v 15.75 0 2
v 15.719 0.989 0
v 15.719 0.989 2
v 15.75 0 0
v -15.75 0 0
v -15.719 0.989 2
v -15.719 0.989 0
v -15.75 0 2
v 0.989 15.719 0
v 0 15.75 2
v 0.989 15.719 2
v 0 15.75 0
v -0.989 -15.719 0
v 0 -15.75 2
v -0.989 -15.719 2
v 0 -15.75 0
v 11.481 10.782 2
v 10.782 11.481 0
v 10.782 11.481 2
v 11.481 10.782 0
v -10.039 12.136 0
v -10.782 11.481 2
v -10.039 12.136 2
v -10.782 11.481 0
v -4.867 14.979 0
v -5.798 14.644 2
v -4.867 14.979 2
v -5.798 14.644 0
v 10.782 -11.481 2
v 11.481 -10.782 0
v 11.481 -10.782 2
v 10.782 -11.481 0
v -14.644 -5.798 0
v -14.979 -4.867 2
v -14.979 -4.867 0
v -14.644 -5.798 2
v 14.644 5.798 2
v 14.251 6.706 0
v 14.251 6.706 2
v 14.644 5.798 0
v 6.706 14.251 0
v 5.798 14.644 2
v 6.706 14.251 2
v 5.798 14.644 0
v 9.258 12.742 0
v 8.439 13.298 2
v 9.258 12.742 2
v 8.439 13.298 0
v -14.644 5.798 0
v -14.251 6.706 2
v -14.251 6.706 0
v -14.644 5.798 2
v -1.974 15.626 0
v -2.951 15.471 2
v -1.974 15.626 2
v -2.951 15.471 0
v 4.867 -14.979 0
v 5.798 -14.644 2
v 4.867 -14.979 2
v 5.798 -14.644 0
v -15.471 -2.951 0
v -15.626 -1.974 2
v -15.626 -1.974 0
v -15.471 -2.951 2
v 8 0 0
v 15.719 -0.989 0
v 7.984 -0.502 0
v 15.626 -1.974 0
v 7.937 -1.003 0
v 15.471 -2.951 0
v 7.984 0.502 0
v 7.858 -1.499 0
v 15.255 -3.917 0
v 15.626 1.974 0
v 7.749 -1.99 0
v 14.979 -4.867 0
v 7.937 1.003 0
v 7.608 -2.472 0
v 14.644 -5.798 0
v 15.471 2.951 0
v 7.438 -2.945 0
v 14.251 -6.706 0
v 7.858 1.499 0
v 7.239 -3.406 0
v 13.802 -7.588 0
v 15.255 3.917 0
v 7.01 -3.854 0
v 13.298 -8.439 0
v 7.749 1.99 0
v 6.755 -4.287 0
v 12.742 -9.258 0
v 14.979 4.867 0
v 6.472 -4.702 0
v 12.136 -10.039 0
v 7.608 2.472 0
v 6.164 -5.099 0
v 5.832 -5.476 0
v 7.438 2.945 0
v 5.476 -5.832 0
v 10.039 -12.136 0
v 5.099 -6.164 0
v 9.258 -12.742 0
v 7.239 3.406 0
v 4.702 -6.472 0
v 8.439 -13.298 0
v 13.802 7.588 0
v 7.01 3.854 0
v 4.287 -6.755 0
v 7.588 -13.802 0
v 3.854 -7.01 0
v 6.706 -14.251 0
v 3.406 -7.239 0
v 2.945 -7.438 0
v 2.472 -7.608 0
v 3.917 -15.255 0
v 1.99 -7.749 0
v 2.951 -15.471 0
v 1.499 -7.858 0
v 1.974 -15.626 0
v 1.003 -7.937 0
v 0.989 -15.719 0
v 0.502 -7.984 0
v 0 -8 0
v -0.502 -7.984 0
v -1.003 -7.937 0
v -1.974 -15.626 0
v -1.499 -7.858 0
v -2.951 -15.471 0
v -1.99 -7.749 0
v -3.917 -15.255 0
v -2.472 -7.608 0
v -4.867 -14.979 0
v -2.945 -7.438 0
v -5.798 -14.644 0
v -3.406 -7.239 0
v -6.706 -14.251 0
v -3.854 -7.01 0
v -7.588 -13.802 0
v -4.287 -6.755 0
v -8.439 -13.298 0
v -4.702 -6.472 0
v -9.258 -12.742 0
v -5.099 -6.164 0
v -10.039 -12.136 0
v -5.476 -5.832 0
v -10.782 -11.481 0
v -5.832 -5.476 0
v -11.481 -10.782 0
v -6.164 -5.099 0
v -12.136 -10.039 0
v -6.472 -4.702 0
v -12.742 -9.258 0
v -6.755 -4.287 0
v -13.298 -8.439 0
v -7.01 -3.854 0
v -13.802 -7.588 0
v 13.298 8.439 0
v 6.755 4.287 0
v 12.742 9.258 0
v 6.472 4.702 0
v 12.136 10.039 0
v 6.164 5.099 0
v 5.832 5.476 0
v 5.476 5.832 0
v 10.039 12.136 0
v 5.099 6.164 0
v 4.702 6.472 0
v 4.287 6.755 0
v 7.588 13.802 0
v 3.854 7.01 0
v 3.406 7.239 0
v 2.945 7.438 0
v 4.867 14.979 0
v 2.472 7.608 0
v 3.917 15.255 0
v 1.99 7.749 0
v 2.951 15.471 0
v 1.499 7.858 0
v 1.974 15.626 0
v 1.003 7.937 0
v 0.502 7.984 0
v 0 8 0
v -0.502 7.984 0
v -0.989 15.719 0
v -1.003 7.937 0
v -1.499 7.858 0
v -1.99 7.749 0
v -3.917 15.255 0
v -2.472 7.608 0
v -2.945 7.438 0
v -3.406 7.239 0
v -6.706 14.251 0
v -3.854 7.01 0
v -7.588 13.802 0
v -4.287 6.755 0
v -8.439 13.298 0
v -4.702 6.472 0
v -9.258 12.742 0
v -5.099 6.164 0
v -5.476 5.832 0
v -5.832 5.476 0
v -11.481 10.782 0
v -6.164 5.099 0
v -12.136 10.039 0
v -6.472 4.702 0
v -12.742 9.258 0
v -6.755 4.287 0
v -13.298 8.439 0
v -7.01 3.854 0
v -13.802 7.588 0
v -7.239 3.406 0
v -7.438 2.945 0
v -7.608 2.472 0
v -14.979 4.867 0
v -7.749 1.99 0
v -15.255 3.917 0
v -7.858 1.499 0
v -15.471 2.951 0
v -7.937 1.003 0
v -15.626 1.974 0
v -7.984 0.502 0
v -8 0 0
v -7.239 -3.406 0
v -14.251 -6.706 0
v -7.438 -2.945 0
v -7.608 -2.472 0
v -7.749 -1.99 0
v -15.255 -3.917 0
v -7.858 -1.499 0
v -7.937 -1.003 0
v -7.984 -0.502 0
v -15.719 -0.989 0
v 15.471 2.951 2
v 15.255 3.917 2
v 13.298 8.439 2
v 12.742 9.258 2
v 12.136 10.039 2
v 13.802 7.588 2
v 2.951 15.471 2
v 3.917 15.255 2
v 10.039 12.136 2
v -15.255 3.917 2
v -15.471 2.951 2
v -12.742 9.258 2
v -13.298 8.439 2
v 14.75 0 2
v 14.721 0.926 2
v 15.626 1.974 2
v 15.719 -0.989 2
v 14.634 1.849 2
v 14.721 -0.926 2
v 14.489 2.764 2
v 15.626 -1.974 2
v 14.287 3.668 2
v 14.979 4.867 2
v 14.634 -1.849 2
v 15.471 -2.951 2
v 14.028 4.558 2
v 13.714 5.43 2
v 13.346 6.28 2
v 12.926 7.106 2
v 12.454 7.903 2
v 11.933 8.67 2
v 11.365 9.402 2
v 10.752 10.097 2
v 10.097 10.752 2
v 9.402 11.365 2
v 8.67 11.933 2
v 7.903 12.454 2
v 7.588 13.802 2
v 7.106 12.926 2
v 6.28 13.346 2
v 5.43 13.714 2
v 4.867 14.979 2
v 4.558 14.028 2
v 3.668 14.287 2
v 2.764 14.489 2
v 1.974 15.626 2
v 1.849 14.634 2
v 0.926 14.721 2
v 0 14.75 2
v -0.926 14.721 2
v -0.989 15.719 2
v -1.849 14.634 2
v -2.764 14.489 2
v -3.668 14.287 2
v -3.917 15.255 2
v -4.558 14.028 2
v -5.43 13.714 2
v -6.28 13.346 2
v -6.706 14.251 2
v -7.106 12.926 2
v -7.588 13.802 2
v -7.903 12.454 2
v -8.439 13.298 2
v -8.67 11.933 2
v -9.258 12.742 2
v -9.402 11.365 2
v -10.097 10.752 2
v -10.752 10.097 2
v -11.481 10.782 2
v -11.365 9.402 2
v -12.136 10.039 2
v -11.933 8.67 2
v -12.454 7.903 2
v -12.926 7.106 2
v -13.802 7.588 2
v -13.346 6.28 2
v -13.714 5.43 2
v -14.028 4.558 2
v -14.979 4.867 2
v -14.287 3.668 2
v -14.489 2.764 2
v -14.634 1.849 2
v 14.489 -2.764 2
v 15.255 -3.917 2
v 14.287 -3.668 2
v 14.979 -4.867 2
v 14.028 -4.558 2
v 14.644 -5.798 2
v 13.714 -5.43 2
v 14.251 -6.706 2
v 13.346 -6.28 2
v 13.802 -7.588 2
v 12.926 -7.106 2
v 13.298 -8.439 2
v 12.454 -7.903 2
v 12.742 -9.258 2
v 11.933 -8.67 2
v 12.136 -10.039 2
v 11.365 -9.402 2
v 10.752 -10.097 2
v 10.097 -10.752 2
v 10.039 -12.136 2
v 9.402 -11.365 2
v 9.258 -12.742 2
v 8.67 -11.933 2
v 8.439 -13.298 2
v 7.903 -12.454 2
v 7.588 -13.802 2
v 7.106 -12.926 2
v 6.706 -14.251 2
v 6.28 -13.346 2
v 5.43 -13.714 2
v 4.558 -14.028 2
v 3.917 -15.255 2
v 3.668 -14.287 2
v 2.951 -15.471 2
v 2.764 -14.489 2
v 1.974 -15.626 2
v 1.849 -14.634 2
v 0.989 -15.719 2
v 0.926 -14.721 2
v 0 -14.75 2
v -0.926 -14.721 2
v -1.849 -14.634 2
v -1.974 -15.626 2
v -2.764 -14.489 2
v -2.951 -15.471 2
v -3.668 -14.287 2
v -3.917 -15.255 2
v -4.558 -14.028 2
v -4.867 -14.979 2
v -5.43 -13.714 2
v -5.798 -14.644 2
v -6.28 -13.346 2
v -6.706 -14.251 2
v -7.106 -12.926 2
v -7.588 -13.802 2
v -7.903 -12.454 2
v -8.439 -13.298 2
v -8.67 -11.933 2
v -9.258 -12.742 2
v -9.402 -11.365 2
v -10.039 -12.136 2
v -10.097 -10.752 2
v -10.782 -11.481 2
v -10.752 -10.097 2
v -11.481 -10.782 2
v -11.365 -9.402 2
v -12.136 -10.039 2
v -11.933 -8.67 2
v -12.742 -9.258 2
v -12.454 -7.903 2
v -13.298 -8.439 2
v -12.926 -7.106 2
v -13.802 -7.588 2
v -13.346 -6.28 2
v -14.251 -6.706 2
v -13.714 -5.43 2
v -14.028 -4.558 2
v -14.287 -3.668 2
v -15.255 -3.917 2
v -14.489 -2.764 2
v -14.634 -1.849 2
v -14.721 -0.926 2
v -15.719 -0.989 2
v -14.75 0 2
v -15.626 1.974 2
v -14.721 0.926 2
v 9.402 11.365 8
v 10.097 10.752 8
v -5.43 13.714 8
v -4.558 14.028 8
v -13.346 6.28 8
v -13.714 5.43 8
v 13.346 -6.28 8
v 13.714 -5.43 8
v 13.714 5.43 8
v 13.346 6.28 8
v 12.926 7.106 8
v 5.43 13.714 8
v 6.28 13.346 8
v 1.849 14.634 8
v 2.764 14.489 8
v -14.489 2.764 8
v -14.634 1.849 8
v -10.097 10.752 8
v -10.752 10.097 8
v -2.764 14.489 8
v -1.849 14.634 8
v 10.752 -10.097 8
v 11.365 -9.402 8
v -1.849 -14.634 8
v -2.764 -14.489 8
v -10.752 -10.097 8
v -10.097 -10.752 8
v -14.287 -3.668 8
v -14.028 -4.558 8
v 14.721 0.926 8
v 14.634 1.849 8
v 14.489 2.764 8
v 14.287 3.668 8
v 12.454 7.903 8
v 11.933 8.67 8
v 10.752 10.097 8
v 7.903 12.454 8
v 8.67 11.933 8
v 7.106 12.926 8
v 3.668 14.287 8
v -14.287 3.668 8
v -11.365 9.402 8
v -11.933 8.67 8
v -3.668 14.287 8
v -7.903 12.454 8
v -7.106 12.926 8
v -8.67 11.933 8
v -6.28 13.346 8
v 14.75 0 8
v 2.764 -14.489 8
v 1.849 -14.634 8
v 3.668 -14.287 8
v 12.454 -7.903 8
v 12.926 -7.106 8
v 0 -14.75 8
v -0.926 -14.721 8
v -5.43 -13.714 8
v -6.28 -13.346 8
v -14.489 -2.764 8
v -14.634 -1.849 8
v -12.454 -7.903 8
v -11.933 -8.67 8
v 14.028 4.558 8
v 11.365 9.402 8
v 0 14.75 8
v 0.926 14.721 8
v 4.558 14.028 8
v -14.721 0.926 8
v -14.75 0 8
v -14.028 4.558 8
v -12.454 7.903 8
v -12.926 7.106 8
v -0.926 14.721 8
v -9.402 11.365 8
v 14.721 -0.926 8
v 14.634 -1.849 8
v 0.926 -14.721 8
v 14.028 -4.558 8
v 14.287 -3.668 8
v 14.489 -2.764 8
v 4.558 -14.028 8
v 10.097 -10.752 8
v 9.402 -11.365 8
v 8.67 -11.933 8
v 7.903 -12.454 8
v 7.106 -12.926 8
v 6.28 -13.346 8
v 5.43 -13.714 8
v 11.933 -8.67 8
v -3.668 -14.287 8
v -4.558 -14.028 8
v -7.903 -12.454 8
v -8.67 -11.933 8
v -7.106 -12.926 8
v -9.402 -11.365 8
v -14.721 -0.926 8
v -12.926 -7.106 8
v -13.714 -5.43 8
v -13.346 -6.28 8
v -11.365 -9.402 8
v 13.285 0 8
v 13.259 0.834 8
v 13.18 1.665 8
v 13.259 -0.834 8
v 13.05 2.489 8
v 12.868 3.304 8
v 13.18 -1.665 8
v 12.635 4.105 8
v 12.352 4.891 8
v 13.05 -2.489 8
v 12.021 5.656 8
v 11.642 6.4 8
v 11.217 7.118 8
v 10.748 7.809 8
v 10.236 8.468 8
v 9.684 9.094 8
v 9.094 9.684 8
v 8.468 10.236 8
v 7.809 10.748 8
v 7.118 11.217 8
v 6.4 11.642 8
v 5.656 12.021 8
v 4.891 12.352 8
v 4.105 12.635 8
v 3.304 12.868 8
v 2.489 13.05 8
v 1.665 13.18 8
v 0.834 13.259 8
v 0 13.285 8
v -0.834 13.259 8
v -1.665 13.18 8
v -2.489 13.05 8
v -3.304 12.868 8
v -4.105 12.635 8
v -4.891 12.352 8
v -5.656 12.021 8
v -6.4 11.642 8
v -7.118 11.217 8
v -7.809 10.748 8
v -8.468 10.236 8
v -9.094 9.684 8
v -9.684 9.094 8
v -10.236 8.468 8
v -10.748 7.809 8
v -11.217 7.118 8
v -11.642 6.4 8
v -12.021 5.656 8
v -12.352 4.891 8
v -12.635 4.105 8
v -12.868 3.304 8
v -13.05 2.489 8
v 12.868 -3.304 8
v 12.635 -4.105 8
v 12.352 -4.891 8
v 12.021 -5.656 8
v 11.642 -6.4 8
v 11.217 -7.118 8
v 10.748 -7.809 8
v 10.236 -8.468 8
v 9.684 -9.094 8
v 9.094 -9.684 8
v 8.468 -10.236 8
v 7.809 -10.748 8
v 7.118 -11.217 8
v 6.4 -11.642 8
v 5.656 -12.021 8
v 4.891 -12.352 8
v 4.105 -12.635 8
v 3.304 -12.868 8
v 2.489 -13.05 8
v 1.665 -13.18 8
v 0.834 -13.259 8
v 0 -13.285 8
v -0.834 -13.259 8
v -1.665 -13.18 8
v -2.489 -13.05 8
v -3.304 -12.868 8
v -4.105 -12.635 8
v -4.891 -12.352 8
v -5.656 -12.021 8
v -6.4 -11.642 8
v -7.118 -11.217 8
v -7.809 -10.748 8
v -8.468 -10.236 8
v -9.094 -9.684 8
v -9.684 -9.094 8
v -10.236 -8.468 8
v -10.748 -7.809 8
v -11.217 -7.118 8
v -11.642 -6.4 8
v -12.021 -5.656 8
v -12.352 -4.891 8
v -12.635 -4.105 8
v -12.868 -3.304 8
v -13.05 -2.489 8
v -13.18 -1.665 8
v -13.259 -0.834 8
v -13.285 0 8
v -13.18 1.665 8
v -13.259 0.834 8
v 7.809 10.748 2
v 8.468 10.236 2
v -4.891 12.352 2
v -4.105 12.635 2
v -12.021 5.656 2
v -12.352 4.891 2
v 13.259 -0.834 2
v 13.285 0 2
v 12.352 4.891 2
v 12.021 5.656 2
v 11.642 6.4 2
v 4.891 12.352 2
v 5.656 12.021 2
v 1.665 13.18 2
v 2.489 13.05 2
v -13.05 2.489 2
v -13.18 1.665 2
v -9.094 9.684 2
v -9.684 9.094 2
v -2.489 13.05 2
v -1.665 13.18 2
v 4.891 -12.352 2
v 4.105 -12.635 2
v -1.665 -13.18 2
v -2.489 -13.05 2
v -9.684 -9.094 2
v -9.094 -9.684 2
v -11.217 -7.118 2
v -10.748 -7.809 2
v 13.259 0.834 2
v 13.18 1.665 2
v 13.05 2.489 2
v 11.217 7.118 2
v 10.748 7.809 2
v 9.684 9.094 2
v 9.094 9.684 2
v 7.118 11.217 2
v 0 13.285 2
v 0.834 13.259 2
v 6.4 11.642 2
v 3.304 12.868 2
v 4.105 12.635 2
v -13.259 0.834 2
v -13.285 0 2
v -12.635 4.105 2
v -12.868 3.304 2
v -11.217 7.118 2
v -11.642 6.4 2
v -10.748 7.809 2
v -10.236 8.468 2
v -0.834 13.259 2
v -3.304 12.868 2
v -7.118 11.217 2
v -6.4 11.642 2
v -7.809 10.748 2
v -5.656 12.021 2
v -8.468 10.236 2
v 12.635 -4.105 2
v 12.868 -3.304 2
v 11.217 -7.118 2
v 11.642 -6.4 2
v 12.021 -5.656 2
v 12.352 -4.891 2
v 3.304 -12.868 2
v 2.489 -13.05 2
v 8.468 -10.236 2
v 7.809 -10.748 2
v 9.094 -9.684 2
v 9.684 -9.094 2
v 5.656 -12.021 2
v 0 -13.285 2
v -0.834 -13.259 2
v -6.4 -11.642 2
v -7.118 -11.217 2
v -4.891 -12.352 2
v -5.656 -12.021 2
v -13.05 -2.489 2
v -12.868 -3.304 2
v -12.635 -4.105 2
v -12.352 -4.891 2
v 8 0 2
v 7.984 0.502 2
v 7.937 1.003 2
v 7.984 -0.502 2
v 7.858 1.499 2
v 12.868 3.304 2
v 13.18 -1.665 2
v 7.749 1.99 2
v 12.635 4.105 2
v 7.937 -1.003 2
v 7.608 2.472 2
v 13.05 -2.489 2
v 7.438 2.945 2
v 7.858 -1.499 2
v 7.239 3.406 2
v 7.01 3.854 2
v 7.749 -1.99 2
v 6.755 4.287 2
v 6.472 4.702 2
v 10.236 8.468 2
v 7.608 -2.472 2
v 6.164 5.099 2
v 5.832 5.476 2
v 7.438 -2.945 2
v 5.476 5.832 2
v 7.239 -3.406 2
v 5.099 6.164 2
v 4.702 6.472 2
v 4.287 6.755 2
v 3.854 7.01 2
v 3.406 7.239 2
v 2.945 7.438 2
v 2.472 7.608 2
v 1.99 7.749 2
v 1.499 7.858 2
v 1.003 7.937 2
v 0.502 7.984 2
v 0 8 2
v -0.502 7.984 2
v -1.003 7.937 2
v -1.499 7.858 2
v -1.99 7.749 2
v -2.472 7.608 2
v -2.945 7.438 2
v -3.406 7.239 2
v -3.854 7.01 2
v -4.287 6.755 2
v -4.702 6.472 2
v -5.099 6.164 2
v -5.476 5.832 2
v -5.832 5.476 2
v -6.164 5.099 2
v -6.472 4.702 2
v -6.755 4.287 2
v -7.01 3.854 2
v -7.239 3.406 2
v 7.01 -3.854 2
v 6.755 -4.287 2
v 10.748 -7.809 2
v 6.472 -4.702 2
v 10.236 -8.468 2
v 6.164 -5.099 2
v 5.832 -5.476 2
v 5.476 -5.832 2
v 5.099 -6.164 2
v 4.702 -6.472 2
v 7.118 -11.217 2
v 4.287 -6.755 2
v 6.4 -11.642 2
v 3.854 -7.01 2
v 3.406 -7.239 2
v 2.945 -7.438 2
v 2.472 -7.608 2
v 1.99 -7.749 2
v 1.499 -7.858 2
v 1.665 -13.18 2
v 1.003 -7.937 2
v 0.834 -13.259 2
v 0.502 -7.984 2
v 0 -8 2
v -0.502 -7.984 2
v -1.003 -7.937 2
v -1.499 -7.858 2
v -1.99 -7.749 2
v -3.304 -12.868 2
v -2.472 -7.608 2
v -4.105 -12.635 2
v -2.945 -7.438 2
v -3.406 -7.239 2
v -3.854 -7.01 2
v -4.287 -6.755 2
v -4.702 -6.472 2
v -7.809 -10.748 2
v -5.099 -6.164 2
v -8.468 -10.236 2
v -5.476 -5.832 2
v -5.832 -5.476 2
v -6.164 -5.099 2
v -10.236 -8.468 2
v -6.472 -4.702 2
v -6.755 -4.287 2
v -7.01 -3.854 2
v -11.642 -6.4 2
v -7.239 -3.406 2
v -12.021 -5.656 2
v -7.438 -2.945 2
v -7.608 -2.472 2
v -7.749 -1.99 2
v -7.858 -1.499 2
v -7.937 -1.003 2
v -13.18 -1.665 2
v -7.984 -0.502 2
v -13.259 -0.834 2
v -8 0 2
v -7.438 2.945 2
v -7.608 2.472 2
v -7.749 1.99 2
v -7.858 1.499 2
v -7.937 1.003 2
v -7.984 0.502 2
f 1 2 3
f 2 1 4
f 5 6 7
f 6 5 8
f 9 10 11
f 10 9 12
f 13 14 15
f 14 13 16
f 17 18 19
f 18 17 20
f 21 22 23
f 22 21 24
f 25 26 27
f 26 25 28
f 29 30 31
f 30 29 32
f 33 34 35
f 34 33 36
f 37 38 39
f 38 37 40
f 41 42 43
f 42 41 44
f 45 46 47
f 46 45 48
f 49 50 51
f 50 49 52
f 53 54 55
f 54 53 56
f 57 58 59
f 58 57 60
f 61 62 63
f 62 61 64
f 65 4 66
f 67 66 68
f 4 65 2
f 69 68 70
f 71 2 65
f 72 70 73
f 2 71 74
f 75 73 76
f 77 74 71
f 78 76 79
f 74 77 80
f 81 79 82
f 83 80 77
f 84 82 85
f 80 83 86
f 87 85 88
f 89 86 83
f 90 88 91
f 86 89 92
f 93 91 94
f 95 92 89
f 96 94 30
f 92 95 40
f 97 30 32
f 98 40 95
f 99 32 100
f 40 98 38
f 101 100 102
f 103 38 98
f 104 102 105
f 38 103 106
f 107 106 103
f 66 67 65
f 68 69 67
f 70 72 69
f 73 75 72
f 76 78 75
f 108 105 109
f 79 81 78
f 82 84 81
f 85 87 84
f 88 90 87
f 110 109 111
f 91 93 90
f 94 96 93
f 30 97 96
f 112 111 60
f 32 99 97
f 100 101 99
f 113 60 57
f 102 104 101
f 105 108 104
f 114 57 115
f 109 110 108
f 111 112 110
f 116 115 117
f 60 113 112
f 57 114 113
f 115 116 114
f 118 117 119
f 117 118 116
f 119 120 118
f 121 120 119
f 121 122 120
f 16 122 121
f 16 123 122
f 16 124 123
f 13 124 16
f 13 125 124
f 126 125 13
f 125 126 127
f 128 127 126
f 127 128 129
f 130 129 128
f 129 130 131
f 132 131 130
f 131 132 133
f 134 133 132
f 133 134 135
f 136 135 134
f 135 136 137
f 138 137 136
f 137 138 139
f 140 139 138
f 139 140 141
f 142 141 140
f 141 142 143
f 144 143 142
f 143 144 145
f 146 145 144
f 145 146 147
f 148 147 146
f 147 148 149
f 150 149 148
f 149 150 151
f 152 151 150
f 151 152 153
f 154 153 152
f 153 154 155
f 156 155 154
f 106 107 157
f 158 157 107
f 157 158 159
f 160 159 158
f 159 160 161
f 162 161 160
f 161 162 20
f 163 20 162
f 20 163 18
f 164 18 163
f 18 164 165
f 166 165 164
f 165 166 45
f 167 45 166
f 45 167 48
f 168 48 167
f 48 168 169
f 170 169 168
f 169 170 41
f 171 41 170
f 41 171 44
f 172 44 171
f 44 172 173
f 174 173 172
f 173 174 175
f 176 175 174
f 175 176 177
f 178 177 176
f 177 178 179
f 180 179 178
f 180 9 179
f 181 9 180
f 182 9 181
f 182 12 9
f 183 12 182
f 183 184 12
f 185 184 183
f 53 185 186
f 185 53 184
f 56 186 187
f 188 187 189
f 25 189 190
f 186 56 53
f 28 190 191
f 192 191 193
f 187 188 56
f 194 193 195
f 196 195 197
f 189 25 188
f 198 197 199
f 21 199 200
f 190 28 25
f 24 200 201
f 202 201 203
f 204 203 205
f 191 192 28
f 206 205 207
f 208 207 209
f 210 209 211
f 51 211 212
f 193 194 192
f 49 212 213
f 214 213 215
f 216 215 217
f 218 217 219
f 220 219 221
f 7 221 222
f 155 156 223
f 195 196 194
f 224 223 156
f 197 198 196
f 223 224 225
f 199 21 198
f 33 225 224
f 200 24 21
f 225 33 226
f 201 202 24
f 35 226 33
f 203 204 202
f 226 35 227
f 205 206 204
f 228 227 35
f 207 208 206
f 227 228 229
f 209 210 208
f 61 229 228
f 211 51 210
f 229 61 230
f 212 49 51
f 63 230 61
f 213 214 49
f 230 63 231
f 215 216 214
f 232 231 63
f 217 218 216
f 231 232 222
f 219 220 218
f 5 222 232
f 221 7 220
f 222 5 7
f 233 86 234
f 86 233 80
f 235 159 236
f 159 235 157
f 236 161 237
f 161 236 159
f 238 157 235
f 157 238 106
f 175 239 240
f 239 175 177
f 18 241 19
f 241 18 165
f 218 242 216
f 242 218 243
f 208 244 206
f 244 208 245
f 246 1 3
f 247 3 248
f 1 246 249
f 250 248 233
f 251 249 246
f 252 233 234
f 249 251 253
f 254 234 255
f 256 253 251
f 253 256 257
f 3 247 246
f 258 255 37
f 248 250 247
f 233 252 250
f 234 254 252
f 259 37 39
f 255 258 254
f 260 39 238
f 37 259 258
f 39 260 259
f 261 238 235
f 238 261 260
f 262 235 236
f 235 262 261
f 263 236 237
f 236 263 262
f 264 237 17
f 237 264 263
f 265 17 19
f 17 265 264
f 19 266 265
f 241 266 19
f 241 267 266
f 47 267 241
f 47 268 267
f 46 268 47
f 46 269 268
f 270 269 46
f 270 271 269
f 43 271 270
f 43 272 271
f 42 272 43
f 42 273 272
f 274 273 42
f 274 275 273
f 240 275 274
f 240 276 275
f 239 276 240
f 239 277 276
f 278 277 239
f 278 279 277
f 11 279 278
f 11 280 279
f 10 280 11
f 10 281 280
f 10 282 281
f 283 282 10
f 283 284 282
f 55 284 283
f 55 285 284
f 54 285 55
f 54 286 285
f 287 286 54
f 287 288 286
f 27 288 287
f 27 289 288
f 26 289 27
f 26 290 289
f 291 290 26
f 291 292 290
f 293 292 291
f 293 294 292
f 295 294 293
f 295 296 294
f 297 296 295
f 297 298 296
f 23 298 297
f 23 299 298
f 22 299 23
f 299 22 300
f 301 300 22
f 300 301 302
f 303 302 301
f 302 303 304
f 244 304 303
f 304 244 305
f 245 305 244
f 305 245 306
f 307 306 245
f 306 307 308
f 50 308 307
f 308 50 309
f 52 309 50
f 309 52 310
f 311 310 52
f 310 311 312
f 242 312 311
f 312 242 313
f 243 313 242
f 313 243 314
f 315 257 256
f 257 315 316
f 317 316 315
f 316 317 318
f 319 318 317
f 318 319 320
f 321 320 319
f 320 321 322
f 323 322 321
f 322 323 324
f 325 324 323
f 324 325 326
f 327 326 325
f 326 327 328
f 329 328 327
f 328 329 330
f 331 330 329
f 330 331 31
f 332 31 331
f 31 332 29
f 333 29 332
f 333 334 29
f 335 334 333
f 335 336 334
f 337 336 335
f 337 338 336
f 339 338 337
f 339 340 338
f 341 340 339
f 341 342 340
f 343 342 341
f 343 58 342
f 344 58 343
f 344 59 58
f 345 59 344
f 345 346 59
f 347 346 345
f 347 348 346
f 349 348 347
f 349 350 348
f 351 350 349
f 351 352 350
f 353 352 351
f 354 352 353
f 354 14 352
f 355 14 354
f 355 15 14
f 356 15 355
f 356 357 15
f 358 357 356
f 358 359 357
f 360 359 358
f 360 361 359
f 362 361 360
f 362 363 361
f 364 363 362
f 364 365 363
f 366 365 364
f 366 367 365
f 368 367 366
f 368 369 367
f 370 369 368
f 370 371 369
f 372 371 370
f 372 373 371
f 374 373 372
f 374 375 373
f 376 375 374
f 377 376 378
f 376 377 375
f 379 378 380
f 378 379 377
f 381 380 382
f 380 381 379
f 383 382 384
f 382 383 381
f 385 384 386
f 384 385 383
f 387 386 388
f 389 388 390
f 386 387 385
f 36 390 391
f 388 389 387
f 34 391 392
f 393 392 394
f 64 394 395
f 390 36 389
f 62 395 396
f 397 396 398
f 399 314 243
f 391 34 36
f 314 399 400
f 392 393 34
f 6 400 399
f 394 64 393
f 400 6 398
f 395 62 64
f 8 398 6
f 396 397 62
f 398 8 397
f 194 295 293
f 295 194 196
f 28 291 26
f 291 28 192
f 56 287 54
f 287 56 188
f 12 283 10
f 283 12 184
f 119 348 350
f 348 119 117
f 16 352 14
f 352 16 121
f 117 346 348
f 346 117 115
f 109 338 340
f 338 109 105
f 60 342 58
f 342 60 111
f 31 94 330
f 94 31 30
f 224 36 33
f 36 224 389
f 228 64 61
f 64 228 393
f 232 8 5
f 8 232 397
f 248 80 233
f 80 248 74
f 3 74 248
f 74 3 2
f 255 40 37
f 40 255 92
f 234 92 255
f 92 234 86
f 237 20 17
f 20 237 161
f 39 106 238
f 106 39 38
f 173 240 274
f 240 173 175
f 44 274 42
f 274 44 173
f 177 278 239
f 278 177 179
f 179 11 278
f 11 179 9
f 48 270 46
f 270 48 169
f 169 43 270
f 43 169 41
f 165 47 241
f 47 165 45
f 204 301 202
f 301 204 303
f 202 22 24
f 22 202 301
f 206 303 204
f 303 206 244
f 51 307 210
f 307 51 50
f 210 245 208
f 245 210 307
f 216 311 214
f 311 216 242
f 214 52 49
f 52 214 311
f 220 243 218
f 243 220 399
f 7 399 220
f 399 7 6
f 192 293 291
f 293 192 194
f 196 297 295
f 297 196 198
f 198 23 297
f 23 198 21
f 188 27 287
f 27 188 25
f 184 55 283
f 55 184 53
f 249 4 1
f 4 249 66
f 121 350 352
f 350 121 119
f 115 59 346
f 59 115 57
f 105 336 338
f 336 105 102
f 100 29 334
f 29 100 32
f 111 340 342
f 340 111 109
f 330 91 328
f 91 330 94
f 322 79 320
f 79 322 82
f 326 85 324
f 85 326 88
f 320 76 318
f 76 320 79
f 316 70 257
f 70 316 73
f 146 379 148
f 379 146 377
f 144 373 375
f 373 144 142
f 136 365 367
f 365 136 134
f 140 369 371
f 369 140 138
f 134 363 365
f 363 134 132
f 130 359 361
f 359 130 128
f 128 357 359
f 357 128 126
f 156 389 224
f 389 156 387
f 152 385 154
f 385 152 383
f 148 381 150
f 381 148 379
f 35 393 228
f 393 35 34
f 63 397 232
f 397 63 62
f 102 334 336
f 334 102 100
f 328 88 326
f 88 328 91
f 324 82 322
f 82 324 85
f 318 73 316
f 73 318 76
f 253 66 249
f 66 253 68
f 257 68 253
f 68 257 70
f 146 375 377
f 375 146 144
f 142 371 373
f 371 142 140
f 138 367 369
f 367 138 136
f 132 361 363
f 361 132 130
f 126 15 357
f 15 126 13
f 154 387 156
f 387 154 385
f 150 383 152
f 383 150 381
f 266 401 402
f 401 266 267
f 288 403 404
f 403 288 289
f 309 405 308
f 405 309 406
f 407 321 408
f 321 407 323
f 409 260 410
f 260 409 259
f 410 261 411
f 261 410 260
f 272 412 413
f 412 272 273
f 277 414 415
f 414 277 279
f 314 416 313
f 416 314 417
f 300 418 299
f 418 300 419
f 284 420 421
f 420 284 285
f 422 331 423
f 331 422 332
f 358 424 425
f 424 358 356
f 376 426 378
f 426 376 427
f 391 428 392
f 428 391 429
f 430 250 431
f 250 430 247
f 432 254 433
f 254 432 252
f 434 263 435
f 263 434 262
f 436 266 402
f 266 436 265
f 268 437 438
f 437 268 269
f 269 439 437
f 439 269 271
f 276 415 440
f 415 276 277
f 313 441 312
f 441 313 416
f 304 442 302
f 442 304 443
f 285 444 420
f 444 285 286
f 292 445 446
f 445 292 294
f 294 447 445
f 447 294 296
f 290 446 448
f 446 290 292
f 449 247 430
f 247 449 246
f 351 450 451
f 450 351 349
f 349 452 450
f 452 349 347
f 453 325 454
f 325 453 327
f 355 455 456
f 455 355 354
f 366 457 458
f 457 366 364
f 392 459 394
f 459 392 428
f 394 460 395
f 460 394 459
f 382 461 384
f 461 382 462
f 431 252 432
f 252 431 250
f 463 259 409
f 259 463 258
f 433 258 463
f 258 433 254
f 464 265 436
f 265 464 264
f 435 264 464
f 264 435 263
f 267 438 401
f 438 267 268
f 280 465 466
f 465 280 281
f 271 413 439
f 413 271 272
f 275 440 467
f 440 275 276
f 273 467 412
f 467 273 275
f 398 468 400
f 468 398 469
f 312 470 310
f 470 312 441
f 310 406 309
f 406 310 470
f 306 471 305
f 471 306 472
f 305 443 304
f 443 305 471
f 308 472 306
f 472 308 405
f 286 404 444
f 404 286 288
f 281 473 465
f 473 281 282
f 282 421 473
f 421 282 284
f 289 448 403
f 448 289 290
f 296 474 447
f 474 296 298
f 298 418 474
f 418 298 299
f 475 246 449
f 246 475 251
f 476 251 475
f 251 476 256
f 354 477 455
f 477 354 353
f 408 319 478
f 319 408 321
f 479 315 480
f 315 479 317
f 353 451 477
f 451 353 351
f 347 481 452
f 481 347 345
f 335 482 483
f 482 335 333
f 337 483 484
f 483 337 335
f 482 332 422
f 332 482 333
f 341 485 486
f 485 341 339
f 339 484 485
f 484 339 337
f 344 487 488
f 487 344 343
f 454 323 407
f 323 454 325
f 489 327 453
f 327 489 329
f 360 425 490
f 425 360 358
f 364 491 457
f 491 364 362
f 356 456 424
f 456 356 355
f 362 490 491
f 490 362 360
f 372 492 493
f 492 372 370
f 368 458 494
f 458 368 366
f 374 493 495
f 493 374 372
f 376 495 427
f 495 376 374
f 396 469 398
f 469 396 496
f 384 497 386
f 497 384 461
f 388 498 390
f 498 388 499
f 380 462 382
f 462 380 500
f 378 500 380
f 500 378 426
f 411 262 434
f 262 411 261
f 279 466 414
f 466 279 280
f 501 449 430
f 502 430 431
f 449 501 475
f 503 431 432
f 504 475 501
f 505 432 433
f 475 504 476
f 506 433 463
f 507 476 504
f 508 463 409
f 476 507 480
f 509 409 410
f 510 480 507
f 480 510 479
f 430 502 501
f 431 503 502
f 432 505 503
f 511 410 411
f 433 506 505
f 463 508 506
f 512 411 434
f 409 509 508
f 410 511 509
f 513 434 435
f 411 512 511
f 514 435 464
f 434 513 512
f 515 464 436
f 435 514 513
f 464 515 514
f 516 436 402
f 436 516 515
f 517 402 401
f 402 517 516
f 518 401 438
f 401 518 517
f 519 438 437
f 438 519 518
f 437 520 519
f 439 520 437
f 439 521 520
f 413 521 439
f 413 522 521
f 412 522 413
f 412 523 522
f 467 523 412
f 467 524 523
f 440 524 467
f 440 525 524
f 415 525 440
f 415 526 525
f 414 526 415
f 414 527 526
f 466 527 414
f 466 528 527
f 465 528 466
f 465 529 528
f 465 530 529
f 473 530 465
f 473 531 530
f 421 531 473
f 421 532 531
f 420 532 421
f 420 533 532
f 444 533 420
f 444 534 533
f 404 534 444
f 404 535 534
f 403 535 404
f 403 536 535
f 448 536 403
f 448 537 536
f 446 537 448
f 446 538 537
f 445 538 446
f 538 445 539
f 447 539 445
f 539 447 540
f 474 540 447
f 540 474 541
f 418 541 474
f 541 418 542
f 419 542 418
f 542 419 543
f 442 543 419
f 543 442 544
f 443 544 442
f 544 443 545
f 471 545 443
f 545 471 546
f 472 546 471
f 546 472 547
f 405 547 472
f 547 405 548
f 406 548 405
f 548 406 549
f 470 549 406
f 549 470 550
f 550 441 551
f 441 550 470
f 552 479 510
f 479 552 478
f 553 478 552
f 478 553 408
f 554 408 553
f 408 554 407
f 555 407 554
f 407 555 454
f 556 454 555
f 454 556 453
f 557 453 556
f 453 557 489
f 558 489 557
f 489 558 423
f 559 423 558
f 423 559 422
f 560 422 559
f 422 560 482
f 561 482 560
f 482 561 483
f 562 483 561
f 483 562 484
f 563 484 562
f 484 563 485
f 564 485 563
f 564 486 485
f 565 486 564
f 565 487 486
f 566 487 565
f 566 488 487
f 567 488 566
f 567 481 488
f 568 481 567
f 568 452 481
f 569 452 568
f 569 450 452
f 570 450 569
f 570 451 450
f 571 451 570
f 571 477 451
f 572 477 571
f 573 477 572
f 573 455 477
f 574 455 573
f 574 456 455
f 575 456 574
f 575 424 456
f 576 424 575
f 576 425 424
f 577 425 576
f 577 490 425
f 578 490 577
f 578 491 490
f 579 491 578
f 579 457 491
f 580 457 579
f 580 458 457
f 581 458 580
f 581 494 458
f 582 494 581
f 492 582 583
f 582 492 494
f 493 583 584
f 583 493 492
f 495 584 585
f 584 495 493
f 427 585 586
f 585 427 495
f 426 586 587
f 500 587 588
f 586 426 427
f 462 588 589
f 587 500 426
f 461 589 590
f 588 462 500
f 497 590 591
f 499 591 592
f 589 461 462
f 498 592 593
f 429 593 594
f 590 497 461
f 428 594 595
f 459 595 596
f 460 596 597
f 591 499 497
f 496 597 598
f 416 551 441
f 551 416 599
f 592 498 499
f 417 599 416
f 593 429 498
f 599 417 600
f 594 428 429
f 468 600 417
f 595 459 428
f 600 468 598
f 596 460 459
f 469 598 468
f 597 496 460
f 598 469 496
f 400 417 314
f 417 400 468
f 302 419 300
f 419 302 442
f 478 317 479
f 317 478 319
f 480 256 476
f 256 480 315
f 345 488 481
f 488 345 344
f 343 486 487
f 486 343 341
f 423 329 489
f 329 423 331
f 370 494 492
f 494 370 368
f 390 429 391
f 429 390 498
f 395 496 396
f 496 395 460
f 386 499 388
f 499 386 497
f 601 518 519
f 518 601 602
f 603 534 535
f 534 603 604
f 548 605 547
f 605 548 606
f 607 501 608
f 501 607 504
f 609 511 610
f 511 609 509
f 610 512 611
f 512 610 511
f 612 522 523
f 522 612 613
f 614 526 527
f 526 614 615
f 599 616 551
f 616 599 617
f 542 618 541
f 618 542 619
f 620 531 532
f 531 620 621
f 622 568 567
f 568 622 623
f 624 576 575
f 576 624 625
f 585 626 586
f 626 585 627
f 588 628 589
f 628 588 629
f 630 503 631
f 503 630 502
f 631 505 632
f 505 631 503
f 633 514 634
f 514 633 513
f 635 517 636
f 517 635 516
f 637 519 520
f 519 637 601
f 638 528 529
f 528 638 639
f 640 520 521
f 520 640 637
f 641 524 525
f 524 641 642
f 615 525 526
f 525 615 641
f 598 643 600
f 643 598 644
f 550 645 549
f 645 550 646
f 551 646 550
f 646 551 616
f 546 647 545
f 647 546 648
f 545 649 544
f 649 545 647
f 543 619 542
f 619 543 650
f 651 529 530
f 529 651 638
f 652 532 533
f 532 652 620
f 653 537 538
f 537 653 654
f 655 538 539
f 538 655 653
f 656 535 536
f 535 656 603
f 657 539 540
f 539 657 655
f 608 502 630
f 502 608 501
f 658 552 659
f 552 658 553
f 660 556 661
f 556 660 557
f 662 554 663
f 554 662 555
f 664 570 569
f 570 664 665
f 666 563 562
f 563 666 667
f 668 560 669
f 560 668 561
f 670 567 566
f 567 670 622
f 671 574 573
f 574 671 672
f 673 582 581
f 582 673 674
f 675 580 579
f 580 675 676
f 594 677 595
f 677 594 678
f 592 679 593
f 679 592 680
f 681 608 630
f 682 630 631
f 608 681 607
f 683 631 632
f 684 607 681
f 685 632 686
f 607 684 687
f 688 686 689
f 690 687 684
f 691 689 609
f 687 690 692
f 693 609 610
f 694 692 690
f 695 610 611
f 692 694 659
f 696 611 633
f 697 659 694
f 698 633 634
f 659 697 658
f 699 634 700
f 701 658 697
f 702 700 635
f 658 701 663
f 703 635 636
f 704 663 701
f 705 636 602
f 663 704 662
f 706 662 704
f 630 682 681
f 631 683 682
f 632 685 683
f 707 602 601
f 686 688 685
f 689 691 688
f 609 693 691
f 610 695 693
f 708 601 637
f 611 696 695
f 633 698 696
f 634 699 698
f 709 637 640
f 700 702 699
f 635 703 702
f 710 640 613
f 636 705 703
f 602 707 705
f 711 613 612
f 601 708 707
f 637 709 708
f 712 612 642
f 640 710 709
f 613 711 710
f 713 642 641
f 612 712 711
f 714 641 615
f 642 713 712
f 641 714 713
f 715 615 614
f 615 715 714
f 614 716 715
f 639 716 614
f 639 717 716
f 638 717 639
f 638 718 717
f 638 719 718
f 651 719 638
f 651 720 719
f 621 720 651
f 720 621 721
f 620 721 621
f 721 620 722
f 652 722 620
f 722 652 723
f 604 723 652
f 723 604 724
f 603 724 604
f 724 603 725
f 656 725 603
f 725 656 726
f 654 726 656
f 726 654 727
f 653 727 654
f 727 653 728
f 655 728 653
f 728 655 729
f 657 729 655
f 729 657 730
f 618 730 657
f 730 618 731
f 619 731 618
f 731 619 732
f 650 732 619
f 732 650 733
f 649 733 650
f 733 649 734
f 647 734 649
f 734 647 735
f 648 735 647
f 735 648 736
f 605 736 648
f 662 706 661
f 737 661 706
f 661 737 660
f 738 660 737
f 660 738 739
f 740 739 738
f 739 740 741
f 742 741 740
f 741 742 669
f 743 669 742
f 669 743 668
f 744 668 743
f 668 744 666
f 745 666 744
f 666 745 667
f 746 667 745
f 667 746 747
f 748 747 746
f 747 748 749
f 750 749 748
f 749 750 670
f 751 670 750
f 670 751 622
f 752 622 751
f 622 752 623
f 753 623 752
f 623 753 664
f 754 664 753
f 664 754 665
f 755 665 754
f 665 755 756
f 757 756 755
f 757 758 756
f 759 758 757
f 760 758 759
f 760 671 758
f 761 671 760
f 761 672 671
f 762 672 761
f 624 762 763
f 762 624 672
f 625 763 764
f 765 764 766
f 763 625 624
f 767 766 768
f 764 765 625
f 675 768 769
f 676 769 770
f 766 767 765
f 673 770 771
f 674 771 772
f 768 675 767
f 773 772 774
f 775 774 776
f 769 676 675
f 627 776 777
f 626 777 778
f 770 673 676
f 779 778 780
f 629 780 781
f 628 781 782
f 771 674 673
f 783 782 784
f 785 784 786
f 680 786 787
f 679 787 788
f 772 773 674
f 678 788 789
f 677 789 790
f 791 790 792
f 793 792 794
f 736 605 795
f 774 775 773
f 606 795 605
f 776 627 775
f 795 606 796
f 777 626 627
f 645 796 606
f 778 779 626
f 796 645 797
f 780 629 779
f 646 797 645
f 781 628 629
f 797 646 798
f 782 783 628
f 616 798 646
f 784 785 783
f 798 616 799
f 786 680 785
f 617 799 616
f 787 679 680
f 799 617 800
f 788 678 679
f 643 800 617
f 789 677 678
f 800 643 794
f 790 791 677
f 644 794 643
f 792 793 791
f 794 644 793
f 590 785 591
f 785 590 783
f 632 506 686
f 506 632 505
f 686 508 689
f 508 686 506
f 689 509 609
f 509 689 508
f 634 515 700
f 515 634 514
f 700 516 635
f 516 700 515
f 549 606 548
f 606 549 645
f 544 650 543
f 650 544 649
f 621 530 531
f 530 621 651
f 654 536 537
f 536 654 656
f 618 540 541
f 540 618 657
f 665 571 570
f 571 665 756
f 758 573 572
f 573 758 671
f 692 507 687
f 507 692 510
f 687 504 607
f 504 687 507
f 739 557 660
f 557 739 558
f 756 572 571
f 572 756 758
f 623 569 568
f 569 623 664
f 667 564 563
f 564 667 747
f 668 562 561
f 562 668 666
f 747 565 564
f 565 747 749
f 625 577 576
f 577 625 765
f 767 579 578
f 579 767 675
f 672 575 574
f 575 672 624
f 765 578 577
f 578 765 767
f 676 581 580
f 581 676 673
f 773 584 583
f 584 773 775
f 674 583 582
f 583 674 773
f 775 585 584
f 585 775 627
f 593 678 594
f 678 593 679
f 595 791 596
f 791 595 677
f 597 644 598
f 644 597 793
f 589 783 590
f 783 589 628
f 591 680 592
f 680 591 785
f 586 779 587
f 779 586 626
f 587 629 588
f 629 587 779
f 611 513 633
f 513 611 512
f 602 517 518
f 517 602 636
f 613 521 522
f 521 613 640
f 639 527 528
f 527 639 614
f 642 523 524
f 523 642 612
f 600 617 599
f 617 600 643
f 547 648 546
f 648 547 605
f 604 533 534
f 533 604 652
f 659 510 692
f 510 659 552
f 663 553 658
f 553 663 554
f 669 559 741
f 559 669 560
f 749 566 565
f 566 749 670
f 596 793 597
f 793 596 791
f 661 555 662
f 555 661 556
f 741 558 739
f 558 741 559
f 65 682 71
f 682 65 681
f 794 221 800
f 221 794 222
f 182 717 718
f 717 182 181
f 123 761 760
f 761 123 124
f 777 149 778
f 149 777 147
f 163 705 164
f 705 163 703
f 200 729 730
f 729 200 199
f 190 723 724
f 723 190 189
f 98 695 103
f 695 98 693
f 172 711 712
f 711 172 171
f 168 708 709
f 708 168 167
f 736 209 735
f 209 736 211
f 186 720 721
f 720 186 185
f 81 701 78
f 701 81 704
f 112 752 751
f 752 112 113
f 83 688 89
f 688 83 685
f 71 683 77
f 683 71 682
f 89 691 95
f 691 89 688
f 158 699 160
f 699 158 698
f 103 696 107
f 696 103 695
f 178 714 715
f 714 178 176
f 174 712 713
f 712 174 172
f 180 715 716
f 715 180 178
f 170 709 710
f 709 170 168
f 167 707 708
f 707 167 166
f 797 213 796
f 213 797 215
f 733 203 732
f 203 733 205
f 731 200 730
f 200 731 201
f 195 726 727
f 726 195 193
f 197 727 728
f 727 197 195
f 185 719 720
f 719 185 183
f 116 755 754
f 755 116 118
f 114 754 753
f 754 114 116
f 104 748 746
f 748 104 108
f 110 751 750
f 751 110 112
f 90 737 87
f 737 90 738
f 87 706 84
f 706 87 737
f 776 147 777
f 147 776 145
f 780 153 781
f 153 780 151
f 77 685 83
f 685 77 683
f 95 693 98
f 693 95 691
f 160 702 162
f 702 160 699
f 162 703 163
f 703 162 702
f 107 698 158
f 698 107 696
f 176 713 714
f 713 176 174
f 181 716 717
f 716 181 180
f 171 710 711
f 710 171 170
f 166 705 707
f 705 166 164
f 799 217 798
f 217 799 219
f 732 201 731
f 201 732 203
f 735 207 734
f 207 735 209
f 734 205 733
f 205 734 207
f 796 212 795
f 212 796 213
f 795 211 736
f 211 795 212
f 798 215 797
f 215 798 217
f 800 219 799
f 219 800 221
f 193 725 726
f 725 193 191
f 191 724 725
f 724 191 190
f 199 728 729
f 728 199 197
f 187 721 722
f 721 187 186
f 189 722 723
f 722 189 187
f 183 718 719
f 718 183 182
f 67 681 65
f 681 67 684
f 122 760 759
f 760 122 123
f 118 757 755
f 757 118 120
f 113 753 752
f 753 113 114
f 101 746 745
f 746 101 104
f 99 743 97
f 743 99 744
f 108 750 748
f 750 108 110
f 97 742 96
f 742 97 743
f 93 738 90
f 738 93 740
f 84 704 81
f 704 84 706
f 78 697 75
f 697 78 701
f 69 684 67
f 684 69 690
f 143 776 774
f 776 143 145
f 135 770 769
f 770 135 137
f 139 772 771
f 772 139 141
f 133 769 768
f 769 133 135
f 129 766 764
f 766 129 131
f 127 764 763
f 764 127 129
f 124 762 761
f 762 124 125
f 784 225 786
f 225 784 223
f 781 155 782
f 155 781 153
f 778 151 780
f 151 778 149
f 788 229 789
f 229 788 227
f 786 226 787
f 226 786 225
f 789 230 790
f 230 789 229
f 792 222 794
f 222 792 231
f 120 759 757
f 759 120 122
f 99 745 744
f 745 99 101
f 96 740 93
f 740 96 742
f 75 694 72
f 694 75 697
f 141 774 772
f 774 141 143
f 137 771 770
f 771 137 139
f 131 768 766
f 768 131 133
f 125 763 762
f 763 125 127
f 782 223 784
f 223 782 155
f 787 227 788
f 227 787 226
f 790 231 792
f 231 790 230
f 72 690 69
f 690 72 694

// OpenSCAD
//fn=numb of fragments; fa=min angle; fs=min size
//D exterior tuberia mm
$fn=100;
$fa=12;
$fs=2;

DTi=26.57;
//D tubo para la base
Dti=29.5;
Dte=31.5;
//Altura base exterior
He=2;
Hi=6;

//D diafragma
Df=16;
Hf=2;

Ht=He+Hi;

difference(){
difference(){
    union(){
        cylinder(h=He ,d=Dte ,center=false);
        translate ([0,0,He])cylinder($fn=100, $fa=12, $fs=2, h=Hi ,d=Dti ,center=false);
    }
    translate([0,0,Hf])cylinder(h=Ht ,d=DTi ,center=false);
}
translate([0,0,-Hf])cylinder(h=Hf*4 ,d=Df ,center=false);
}
